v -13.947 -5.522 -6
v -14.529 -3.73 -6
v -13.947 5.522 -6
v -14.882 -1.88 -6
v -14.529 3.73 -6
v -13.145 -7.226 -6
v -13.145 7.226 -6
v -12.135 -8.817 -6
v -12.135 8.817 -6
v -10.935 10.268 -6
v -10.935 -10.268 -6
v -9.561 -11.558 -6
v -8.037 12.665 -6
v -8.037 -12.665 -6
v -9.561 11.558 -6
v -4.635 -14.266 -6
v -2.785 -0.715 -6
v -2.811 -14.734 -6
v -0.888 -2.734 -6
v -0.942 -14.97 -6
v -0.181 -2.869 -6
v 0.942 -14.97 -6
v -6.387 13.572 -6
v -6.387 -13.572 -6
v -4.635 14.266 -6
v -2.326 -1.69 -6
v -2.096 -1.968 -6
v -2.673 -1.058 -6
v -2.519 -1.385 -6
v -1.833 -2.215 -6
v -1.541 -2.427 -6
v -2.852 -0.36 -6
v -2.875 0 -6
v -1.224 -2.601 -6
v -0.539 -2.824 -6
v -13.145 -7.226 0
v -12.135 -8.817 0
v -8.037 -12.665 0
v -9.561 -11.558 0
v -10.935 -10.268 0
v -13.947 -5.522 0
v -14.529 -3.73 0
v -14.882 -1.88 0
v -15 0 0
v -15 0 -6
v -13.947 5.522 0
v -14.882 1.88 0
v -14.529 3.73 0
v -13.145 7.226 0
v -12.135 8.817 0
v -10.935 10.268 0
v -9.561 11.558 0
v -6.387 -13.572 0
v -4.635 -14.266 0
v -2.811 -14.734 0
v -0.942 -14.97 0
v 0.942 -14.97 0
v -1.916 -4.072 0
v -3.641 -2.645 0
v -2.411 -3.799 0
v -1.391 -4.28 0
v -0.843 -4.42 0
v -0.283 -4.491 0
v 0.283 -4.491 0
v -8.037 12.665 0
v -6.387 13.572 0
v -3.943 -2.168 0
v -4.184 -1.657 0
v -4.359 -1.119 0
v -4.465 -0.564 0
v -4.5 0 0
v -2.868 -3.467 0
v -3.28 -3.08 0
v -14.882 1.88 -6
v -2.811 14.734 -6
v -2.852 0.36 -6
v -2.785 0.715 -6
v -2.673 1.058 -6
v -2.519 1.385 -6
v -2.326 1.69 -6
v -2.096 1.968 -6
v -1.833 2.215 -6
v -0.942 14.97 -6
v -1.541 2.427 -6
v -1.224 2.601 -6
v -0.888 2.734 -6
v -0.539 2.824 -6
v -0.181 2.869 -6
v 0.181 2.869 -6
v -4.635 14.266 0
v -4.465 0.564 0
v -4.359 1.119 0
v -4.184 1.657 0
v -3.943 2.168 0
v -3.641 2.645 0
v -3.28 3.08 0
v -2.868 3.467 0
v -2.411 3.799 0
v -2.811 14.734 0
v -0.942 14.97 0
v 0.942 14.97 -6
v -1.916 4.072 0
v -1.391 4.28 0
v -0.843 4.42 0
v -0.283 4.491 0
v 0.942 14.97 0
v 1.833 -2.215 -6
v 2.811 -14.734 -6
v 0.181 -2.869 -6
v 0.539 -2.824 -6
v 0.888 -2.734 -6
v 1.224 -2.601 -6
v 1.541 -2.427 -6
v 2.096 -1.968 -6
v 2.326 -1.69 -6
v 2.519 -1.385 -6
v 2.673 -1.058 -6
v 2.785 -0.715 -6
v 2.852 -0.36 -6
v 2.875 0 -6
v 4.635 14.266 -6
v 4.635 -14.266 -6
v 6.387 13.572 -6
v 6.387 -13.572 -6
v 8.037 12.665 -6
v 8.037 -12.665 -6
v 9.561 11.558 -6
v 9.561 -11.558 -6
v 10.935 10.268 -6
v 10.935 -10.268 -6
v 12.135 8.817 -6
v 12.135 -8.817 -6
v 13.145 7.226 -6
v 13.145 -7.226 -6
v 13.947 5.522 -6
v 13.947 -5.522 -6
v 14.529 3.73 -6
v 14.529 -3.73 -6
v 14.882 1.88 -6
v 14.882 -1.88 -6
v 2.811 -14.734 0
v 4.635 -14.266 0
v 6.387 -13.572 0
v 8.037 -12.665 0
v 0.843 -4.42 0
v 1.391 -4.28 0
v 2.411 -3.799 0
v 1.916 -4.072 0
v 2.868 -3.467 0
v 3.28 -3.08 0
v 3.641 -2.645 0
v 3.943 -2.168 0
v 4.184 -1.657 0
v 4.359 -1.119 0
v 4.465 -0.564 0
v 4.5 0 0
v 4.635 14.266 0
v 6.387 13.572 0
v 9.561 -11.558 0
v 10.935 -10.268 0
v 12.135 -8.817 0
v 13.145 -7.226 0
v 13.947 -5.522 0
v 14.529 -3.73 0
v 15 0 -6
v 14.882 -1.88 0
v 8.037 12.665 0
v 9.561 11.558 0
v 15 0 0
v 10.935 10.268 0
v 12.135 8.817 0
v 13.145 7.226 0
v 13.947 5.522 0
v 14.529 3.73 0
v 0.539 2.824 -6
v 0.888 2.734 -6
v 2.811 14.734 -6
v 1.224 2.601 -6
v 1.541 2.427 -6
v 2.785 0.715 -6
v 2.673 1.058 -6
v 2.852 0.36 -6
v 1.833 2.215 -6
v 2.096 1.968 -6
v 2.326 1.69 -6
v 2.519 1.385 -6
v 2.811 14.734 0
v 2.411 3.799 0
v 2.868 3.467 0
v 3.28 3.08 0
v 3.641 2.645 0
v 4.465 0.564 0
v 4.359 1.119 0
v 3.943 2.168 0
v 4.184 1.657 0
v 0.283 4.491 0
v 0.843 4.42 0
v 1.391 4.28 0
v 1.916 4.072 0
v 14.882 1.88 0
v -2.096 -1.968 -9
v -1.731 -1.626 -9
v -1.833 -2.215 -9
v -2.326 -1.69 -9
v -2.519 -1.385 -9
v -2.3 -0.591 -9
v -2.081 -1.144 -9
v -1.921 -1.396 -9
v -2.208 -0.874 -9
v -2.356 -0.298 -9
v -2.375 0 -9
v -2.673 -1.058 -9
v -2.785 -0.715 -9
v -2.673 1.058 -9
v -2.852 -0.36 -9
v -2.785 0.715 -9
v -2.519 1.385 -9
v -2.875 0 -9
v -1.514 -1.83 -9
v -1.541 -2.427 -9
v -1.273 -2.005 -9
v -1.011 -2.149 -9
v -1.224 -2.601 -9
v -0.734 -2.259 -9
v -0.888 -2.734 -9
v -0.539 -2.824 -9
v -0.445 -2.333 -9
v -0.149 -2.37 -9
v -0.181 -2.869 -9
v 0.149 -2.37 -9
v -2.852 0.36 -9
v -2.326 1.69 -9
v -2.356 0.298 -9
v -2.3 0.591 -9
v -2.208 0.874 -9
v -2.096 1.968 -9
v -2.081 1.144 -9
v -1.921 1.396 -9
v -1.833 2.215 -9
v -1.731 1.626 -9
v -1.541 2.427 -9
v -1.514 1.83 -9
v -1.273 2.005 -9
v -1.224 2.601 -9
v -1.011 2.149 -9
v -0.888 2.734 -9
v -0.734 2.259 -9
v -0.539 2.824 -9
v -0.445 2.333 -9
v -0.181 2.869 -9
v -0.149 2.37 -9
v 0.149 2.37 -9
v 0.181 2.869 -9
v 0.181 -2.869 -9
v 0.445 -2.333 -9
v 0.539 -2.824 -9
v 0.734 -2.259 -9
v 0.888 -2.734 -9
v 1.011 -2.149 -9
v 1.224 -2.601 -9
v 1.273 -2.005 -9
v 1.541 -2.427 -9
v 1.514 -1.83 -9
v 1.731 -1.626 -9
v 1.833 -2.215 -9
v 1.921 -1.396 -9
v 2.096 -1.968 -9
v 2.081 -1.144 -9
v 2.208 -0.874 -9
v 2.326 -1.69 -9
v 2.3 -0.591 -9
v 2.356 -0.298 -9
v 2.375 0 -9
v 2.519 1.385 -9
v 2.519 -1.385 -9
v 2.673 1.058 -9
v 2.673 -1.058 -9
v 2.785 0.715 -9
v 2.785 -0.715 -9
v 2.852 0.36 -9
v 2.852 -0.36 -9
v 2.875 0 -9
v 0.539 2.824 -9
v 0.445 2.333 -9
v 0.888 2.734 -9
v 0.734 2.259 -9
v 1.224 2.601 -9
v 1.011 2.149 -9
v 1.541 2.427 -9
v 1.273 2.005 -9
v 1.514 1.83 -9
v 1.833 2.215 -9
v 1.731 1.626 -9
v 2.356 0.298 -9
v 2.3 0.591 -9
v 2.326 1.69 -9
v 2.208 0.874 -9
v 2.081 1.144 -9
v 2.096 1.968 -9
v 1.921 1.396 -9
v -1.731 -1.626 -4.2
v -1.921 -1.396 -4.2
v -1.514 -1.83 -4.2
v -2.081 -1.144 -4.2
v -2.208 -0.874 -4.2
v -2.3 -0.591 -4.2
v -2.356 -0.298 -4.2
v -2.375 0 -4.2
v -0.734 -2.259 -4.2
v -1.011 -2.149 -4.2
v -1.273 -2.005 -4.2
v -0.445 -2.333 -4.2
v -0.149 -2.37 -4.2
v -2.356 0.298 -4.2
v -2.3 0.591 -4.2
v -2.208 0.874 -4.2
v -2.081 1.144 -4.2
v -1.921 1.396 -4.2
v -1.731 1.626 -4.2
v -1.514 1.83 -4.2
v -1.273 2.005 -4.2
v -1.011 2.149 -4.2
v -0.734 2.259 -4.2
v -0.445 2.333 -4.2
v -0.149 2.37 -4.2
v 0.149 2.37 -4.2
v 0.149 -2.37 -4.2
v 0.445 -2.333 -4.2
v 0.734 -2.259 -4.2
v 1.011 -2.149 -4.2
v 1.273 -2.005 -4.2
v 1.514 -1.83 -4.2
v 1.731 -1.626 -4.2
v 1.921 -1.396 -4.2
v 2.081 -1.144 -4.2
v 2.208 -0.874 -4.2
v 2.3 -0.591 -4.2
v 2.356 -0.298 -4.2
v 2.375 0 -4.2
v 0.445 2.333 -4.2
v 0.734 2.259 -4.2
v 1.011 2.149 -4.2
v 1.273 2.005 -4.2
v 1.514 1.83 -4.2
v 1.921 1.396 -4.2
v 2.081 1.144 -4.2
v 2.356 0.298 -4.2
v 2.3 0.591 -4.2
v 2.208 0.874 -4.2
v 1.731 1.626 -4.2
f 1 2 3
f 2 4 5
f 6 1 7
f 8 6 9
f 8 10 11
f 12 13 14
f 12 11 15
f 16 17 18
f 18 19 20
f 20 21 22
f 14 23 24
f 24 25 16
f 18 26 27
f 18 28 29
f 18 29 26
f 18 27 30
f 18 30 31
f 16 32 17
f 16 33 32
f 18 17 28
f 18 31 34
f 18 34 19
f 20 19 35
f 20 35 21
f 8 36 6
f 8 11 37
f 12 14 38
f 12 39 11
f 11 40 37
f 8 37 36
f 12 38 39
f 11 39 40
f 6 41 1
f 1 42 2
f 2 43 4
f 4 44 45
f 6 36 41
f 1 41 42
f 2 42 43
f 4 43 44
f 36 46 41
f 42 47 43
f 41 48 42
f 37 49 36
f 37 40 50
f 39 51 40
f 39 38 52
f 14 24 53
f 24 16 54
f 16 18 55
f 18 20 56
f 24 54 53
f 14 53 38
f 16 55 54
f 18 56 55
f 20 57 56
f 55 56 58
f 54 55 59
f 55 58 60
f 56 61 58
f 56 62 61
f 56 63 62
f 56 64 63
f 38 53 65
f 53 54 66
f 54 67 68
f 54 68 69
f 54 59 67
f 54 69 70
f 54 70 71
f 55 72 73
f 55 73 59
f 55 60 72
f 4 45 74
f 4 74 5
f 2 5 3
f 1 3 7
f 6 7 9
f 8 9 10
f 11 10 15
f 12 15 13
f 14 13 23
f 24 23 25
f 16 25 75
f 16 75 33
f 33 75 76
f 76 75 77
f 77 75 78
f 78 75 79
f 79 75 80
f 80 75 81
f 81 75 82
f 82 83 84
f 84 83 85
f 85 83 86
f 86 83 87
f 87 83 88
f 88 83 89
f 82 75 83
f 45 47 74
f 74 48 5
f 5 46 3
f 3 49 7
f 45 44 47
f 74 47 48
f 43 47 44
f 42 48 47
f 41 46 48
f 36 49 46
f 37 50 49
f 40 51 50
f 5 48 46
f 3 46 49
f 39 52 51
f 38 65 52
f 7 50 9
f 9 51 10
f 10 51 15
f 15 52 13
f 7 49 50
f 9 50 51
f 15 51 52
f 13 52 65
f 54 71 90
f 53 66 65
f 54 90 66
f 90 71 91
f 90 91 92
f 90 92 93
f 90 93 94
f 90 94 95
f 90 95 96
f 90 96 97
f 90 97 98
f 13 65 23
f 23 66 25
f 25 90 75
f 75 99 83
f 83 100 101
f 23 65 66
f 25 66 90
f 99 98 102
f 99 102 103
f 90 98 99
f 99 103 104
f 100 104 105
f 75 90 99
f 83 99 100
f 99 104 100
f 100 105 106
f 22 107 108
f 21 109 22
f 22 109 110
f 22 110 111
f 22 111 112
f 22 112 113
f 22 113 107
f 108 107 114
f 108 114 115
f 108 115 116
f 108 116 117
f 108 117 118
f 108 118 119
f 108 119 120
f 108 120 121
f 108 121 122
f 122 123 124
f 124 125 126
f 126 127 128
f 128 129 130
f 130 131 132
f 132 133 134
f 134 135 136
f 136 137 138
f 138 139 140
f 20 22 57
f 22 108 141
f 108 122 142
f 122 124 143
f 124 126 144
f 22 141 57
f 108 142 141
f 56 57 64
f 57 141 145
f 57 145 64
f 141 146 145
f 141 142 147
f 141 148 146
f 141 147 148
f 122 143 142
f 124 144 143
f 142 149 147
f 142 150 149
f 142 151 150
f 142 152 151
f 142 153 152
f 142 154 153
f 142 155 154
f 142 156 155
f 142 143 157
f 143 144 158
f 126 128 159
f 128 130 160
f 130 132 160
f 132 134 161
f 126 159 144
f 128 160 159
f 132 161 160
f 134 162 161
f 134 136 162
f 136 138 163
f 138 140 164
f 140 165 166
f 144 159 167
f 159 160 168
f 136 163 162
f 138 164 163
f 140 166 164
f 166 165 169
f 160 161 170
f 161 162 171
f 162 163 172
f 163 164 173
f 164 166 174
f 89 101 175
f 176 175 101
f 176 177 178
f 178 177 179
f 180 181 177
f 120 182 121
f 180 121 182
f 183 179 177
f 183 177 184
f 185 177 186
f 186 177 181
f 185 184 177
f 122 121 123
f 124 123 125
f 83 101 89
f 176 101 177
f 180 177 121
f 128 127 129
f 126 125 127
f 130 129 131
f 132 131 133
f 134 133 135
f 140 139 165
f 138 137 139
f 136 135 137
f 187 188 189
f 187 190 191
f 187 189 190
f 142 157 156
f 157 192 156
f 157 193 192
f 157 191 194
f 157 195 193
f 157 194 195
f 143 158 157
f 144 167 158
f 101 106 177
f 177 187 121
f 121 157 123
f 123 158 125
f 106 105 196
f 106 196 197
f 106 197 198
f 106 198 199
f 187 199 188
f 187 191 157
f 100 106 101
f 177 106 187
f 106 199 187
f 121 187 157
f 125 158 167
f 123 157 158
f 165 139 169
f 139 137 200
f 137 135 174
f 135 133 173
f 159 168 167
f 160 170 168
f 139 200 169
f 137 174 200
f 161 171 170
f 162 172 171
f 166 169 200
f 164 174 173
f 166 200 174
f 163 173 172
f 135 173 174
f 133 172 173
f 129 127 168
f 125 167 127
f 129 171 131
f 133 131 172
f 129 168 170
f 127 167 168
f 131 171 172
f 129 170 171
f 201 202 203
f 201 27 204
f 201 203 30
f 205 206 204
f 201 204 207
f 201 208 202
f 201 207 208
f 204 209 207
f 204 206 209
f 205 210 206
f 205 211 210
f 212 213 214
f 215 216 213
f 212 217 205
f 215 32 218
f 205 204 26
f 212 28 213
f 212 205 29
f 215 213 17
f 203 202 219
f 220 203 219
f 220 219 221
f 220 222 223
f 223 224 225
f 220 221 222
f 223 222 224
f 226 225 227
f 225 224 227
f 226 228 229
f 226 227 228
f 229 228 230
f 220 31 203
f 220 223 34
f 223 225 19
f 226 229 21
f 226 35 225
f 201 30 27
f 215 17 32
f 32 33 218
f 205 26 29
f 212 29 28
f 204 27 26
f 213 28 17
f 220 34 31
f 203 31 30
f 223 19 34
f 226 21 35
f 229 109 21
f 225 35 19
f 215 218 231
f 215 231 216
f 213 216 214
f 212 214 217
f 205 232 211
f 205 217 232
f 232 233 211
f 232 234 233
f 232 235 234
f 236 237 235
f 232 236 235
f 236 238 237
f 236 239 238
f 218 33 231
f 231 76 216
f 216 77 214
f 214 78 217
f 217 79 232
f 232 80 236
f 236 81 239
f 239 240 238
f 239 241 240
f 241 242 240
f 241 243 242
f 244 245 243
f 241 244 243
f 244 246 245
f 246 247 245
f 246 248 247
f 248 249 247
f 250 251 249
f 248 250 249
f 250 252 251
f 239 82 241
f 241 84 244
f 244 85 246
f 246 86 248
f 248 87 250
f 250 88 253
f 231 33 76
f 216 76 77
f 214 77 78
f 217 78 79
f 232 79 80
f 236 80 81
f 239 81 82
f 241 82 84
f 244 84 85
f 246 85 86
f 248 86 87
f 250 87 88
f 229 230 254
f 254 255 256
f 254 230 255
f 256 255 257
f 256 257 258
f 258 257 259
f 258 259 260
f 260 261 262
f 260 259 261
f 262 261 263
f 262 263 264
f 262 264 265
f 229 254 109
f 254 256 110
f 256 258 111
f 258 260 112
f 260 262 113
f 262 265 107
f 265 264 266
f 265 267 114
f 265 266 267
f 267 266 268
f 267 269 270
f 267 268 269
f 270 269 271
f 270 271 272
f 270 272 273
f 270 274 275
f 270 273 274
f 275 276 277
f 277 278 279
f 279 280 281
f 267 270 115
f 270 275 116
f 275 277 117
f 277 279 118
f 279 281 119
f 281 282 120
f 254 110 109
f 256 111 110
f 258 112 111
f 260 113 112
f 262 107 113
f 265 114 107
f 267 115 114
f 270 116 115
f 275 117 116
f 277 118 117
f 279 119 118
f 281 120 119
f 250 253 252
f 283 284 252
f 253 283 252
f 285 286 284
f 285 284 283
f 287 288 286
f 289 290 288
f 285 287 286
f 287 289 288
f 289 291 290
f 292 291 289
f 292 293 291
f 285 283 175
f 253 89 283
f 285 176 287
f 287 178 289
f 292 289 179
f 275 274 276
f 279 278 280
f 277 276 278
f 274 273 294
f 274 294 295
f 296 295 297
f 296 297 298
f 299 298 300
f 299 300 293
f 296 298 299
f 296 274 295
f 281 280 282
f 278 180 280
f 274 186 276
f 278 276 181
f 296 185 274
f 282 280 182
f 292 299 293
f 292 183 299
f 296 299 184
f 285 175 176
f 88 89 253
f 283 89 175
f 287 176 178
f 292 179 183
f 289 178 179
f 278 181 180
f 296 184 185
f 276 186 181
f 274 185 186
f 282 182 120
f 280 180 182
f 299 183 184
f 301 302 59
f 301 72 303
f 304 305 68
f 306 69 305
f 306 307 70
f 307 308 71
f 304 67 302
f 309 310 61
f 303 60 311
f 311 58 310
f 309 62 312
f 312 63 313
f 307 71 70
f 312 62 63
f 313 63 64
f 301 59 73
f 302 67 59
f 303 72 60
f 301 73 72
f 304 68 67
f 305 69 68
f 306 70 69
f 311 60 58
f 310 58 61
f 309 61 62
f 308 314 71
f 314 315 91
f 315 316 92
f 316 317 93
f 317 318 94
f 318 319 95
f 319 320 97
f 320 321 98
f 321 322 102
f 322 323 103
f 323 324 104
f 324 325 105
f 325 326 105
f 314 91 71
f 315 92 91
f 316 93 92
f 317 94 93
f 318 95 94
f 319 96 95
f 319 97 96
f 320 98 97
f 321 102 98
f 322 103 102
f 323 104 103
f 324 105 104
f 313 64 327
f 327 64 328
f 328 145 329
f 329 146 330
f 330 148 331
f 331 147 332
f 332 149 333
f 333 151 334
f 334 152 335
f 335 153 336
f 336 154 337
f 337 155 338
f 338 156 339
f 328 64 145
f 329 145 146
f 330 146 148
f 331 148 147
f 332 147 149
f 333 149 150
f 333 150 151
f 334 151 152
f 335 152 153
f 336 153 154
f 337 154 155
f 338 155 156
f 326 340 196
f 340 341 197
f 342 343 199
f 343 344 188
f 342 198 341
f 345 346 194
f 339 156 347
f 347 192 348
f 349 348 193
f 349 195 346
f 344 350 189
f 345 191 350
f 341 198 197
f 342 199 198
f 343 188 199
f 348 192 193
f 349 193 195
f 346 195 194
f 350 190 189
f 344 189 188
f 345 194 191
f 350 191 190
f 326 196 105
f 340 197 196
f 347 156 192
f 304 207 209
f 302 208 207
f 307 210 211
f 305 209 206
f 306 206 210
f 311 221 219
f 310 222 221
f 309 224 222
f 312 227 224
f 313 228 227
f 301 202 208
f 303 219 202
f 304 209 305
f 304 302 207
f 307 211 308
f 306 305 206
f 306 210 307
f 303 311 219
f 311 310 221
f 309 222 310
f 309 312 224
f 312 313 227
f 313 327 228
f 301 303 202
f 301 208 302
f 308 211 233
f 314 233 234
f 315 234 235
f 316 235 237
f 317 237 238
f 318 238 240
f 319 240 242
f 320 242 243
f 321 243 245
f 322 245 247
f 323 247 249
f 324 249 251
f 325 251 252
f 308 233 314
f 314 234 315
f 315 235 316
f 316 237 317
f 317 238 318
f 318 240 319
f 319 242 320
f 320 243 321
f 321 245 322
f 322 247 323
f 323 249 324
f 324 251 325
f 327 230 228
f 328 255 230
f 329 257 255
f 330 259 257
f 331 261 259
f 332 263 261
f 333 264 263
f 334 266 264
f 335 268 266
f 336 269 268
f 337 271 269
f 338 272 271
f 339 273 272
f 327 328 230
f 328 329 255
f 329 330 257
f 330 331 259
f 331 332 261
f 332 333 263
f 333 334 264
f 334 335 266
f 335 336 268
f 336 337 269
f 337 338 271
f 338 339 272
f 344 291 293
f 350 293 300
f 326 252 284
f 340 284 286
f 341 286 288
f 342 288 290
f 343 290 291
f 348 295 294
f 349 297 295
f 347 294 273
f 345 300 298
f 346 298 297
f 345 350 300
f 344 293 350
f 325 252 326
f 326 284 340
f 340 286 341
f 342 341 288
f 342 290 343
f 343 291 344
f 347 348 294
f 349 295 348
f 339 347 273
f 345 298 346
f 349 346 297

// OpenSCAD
$fn = 50;


difference() {
	union() {
		translate(v = [0, 0, -6.0000000000]) {
			cylinder(h = 6, r = 15.0000000000);
		}
		#translate(v = [0, 0, -9.0000000000]) {
			cylinder(h = 9, r = 2.8750000000);
		}
	}
	union() {
		translate(v = [0, 0, 0]) {
			rotate(a = [0, 0, 0]) {
				difference() {
					union() {
						translate(v = [0, 0, -9.0000000000]) {
							cylinder(h = 9, r = 2.2500000000);
						}
						translate(v = [0, 0, -4.2000000000]) {
							cylinder(h = 4.2000000000, r1 = 2.3750000000, r2 = 4.5000000000);
						}
						translate(v = [0, 0, -9.0000000000]) {
							cylinder(h = 9, r = 2.3750000000);
						}
						translate(v = [0, 0, -9.0000000000]) {
							cylinder(h = 9, r = 2.2500000000);
						}
					}
					union();
				}
			}
		}
	}
}
